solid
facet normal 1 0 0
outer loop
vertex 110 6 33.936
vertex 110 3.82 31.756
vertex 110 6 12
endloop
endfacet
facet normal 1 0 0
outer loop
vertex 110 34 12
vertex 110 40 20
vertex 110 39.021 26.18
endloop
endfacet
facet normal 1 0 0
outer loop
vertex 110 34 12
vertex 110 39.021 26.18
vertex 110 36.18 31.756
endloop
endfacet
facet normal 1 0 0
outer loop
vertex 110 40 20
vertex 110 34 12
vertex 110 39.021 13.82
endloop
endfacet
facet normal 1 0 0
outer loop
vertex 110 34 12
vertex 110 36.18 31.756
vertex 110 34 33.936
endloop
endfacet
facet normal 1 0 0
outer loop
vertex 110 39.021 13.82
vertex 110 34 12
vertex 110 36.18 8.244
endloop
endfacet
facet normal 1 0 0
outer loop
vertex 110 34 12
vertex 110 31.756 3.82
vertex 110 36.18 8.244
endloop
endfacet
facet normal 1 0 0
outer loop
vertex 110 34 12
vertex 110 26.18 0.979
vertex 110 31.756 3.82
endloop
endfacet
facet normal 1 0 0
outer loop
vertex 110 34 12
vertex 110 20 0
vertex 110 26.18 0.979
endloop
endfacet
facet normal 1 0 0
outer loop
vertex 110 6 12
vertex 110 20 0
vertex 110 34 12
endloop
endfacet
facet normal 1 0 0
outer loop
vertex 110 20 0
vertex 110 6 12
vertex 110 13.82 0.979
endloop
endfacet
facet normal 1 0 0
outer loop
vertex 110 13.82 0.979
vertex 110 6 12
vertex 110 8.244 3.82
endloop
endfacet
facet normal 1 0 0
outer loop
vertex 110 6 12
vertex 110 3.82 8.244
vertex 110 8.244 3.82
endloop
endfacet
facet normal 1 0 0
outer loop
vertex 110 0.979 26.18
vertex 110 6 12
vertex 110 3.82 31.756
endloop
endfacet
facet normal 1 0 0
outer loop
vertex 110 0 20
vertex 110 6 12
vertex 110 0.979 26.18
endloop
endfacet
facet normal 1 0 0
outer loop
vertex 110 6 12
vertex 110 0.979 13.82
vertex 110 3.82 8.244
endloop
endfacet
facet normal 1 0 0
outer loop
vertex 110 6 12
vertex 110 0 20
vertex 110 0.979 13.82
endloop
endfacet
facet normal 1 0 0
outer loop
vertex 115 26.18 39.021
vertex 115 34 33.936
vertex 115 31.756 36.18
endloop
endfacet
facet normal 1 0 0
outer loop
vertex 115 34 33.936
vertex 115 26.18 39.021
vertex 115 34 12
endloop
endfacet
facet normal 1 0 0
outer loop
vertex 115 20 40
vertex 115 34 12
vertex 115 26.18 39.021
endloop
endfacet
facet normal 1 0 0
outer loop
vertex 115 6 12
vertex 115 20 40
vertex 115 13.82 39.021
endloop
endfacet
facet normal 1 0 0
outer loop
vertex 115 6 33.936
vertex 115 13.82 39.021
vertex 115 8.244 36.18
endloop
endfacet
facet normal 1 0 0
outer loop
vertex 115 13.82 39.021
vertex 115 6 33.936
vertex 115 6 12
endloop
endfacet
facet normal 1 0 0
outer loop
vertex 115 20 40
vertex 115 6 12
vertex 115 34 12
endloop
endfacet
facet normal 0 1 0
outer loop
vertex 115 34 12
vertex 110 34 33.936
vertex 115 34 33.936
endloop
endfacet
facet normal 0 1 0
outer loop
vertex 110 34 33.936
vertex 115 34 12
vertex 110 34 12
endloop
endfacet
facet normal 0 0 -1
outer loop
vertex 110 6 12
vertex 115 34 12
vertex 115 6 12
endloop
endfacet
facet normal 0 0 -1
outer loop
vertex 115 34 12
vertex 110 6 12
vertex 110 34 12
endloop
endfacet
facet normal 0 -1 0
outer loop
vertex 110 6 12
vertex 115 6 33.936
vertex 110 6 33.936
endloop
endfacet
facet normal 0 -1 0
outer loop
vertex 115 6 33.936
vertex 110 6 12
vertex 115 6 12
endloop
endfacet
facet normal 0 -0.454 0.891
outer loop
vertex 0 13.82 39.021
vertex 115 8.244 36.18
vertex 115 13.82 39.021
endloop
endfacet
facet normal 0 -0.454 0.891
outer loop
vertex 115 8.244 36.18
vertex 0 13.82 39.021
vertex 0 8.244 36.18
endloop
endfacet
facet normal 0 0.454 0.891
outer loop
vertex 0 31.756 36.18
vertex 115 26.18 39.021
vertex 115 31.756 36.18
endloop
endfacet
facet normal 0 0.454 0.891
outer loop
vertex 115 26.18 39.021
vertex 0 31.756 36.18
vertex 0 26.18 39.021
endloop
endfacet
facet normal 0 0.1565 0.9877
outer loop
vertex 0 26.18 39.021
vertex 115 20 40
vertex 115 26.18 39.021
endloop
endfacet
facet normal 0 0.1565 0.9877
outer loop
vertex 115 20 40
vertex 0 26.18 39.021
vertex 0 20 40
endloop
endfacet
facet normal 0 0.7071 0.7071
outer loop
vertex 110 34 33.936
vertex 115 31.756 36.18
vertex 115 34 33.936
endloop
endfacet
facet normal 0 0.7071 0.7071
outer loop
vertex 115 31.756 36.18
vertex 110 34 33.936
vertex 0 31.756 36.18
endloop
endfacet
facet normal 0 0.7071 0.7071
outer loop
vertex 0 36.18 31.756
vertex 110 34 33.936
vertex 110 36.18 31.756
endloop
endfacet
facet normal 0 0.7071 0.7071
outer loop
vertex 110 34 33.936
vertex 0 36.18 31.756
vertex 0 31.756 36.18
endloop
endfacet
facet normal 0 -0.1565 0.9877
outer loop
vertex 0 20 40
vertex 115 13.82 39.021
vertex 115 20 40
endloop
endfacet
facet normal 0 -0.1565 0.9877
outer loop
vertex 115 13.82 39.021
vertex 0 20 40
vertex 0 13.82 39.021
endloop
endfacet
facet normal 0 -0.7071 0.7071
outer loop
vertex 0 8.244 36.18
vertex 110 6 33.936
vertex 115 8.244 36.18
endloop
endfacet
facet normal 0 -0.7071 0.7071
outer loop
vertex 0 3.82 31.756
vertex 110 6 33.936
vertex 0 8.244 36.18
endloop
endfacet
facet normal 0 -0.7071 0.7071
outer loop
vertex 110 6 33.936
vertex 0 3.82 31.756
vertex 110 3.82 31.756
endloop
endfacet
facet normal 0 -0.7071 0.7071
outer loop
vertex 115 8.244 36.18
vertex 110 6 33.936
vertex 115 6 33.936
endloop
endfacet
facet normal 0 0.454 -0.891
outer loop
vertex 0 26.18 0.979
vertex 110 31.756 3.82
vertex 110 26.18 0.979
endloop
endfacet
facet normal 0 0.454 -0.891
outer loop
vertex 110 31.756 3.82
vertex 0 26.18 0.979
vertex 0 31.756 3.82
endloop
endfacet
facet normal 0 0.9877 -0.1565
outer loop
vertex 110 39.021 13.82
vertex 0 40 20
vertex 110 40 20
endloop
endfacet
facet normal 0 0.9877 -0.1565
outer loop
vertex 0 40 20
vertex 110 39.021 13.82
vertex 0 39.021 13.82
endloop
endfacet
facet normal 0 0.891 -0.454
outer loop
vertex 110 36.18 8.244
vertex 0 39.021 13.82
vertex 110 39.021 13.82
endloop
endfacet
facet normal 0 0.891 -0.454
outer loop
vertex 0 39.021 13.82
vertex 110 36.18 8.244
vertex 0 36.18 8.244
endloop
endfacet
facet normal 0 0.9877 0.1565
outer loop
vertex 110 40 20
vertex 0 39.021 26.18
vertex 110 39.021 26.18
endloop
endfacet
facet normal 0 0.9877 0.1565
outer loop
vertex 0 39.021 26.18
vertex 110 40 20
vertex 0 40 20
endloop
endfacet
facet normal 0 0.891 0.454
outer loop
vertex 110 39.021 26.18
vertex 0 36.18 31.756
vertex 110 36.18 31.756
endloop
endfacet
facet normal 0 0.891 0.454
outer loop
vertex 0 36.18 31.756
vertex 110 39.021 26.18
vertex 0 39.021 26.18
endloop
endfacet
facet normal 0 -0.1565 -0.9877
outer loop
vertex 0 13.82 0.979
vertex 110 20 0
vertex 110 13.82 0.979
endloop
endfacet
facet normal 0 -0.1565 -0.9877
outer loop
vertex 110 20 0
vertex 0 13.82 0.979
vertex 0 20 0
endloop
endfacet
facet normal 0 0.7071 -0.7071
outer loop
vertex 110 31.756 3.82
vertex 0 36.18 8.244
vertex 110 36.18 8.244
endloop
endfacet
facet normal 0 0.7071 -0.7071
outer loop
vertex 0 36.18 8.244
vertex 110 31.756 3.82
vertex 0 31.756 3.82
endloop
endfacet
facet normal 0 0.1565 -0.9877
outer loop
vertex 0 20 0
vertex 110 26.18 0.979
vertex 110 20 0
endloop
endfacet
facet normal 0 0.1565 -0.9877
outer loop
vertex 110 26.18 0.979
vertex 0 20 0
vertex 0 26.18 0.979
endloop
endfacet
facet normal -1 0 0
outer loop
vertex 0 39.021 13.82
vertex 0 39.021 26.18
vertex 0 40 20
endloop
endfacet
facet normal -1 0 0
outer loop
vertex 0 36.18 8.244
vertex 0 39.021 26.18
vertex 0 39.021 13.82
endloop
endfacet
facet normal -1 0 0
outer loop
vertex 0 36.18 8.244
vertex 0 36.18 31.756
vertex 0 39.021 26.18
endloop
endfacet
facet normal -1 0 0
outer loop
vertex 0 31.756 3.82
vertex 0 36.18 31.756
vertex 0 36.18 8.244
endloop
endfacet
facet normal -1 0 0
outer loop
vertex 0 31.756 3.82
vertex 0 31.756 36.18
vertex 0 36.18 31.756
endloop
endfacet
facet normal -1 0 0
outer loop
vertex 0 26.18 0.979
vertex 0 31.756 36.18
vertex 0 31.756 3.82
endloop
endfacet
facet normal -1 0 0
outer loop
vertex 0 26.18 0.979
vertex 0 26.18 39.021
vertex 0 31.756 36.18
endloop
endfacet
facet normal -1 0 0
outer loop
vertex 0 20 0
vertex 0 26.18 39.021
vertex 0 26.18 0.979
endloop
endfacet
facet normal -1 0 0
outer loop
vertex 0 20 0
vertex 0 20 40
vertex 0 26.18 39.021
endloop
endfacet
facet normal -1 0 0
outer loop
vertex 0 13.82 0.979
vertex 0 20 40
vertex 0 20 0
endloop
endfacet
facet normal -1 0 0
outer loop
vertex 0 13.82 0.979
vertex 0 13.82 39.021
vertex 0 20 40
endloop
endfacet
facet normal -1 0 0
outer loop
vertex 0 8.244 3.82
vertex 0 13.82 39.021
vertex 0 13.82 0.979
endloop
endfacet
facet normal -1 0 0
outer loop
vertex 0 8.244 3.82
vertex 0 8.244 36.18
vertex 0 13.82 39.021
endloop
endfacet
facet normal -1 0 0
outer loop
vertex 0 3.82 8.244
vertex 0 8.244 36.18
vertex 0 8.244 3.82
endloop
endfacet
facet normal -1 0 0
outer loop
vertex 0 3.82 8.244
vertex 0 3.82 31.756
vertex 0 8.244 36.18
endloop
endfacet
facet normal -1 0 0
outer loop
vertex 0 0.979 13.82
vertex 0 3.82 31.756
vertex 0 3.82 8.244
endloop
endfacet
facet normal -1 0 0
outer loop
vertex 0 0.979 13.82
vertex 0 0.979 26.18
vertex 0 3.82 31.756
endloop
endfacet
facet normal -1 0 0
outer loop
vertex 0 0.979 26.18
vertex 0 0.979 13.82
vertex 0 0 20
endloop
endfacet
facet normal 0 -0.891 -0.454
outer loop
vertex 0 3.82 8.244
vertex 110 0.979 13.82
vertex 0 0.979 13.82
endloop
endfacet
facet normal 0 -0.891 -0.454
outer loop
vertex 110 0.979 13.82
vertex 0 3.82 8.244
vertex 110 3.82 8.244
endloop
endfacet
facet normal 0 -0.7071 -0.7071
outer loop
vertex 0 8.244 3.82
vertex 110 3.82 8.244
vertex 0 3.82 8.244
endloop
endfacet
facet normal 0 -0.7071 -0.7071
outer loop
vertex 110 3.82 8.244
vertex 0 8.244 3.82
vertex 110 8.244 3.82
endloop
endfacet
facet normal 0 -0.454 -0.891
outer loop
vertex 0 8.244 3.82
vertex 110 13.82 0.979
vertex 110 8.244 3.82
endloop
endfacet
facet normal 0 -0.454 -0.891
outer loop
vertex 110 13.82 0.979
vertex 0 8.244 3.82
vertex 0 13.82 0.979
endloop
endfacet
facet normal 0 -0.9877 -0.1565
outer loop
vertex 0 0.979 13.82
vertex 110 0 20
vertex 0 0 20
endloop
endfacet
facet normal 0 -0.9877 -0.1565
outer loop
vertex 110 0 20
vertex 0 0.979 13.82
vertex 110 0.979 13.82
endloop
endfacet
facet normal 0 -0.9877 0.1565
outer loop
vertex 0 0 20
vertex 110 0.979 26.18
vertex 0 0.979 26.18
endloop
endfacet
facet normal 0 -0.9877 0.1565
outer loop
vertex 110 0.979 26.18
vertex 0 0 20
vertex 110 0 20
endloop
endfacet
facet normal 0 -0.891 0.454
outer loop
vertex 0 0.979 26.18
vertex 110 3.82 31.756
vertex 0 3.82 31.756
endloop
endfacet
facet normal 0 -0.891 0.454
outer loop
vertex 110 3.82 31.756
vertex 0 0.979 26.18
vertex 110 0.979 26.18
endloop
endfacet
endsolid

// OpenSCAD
length = 110;
diameter = 40;
pillarHoleSide = 20;
notchWidth = diameter * .7;
notchHeight = notchWidth;
notchDepth = 5;

$fn = 20;
union() {
    translate([0, diameter/2, diameter/2])
        rotate([0, 90, 0])
            cylinder(h = length, d = diameter);
    
    intersection() {
    translate([length, diameter * .3 * .5, diameter * .3])
        cube([notchDepth, notchWidth, notchHeight]);
    translate([0, diameter/2, diameter/2])
        rotate([0, 90, 0])
            cylinder(h = length + notchWidth, d = diameter);
    }
    
}
